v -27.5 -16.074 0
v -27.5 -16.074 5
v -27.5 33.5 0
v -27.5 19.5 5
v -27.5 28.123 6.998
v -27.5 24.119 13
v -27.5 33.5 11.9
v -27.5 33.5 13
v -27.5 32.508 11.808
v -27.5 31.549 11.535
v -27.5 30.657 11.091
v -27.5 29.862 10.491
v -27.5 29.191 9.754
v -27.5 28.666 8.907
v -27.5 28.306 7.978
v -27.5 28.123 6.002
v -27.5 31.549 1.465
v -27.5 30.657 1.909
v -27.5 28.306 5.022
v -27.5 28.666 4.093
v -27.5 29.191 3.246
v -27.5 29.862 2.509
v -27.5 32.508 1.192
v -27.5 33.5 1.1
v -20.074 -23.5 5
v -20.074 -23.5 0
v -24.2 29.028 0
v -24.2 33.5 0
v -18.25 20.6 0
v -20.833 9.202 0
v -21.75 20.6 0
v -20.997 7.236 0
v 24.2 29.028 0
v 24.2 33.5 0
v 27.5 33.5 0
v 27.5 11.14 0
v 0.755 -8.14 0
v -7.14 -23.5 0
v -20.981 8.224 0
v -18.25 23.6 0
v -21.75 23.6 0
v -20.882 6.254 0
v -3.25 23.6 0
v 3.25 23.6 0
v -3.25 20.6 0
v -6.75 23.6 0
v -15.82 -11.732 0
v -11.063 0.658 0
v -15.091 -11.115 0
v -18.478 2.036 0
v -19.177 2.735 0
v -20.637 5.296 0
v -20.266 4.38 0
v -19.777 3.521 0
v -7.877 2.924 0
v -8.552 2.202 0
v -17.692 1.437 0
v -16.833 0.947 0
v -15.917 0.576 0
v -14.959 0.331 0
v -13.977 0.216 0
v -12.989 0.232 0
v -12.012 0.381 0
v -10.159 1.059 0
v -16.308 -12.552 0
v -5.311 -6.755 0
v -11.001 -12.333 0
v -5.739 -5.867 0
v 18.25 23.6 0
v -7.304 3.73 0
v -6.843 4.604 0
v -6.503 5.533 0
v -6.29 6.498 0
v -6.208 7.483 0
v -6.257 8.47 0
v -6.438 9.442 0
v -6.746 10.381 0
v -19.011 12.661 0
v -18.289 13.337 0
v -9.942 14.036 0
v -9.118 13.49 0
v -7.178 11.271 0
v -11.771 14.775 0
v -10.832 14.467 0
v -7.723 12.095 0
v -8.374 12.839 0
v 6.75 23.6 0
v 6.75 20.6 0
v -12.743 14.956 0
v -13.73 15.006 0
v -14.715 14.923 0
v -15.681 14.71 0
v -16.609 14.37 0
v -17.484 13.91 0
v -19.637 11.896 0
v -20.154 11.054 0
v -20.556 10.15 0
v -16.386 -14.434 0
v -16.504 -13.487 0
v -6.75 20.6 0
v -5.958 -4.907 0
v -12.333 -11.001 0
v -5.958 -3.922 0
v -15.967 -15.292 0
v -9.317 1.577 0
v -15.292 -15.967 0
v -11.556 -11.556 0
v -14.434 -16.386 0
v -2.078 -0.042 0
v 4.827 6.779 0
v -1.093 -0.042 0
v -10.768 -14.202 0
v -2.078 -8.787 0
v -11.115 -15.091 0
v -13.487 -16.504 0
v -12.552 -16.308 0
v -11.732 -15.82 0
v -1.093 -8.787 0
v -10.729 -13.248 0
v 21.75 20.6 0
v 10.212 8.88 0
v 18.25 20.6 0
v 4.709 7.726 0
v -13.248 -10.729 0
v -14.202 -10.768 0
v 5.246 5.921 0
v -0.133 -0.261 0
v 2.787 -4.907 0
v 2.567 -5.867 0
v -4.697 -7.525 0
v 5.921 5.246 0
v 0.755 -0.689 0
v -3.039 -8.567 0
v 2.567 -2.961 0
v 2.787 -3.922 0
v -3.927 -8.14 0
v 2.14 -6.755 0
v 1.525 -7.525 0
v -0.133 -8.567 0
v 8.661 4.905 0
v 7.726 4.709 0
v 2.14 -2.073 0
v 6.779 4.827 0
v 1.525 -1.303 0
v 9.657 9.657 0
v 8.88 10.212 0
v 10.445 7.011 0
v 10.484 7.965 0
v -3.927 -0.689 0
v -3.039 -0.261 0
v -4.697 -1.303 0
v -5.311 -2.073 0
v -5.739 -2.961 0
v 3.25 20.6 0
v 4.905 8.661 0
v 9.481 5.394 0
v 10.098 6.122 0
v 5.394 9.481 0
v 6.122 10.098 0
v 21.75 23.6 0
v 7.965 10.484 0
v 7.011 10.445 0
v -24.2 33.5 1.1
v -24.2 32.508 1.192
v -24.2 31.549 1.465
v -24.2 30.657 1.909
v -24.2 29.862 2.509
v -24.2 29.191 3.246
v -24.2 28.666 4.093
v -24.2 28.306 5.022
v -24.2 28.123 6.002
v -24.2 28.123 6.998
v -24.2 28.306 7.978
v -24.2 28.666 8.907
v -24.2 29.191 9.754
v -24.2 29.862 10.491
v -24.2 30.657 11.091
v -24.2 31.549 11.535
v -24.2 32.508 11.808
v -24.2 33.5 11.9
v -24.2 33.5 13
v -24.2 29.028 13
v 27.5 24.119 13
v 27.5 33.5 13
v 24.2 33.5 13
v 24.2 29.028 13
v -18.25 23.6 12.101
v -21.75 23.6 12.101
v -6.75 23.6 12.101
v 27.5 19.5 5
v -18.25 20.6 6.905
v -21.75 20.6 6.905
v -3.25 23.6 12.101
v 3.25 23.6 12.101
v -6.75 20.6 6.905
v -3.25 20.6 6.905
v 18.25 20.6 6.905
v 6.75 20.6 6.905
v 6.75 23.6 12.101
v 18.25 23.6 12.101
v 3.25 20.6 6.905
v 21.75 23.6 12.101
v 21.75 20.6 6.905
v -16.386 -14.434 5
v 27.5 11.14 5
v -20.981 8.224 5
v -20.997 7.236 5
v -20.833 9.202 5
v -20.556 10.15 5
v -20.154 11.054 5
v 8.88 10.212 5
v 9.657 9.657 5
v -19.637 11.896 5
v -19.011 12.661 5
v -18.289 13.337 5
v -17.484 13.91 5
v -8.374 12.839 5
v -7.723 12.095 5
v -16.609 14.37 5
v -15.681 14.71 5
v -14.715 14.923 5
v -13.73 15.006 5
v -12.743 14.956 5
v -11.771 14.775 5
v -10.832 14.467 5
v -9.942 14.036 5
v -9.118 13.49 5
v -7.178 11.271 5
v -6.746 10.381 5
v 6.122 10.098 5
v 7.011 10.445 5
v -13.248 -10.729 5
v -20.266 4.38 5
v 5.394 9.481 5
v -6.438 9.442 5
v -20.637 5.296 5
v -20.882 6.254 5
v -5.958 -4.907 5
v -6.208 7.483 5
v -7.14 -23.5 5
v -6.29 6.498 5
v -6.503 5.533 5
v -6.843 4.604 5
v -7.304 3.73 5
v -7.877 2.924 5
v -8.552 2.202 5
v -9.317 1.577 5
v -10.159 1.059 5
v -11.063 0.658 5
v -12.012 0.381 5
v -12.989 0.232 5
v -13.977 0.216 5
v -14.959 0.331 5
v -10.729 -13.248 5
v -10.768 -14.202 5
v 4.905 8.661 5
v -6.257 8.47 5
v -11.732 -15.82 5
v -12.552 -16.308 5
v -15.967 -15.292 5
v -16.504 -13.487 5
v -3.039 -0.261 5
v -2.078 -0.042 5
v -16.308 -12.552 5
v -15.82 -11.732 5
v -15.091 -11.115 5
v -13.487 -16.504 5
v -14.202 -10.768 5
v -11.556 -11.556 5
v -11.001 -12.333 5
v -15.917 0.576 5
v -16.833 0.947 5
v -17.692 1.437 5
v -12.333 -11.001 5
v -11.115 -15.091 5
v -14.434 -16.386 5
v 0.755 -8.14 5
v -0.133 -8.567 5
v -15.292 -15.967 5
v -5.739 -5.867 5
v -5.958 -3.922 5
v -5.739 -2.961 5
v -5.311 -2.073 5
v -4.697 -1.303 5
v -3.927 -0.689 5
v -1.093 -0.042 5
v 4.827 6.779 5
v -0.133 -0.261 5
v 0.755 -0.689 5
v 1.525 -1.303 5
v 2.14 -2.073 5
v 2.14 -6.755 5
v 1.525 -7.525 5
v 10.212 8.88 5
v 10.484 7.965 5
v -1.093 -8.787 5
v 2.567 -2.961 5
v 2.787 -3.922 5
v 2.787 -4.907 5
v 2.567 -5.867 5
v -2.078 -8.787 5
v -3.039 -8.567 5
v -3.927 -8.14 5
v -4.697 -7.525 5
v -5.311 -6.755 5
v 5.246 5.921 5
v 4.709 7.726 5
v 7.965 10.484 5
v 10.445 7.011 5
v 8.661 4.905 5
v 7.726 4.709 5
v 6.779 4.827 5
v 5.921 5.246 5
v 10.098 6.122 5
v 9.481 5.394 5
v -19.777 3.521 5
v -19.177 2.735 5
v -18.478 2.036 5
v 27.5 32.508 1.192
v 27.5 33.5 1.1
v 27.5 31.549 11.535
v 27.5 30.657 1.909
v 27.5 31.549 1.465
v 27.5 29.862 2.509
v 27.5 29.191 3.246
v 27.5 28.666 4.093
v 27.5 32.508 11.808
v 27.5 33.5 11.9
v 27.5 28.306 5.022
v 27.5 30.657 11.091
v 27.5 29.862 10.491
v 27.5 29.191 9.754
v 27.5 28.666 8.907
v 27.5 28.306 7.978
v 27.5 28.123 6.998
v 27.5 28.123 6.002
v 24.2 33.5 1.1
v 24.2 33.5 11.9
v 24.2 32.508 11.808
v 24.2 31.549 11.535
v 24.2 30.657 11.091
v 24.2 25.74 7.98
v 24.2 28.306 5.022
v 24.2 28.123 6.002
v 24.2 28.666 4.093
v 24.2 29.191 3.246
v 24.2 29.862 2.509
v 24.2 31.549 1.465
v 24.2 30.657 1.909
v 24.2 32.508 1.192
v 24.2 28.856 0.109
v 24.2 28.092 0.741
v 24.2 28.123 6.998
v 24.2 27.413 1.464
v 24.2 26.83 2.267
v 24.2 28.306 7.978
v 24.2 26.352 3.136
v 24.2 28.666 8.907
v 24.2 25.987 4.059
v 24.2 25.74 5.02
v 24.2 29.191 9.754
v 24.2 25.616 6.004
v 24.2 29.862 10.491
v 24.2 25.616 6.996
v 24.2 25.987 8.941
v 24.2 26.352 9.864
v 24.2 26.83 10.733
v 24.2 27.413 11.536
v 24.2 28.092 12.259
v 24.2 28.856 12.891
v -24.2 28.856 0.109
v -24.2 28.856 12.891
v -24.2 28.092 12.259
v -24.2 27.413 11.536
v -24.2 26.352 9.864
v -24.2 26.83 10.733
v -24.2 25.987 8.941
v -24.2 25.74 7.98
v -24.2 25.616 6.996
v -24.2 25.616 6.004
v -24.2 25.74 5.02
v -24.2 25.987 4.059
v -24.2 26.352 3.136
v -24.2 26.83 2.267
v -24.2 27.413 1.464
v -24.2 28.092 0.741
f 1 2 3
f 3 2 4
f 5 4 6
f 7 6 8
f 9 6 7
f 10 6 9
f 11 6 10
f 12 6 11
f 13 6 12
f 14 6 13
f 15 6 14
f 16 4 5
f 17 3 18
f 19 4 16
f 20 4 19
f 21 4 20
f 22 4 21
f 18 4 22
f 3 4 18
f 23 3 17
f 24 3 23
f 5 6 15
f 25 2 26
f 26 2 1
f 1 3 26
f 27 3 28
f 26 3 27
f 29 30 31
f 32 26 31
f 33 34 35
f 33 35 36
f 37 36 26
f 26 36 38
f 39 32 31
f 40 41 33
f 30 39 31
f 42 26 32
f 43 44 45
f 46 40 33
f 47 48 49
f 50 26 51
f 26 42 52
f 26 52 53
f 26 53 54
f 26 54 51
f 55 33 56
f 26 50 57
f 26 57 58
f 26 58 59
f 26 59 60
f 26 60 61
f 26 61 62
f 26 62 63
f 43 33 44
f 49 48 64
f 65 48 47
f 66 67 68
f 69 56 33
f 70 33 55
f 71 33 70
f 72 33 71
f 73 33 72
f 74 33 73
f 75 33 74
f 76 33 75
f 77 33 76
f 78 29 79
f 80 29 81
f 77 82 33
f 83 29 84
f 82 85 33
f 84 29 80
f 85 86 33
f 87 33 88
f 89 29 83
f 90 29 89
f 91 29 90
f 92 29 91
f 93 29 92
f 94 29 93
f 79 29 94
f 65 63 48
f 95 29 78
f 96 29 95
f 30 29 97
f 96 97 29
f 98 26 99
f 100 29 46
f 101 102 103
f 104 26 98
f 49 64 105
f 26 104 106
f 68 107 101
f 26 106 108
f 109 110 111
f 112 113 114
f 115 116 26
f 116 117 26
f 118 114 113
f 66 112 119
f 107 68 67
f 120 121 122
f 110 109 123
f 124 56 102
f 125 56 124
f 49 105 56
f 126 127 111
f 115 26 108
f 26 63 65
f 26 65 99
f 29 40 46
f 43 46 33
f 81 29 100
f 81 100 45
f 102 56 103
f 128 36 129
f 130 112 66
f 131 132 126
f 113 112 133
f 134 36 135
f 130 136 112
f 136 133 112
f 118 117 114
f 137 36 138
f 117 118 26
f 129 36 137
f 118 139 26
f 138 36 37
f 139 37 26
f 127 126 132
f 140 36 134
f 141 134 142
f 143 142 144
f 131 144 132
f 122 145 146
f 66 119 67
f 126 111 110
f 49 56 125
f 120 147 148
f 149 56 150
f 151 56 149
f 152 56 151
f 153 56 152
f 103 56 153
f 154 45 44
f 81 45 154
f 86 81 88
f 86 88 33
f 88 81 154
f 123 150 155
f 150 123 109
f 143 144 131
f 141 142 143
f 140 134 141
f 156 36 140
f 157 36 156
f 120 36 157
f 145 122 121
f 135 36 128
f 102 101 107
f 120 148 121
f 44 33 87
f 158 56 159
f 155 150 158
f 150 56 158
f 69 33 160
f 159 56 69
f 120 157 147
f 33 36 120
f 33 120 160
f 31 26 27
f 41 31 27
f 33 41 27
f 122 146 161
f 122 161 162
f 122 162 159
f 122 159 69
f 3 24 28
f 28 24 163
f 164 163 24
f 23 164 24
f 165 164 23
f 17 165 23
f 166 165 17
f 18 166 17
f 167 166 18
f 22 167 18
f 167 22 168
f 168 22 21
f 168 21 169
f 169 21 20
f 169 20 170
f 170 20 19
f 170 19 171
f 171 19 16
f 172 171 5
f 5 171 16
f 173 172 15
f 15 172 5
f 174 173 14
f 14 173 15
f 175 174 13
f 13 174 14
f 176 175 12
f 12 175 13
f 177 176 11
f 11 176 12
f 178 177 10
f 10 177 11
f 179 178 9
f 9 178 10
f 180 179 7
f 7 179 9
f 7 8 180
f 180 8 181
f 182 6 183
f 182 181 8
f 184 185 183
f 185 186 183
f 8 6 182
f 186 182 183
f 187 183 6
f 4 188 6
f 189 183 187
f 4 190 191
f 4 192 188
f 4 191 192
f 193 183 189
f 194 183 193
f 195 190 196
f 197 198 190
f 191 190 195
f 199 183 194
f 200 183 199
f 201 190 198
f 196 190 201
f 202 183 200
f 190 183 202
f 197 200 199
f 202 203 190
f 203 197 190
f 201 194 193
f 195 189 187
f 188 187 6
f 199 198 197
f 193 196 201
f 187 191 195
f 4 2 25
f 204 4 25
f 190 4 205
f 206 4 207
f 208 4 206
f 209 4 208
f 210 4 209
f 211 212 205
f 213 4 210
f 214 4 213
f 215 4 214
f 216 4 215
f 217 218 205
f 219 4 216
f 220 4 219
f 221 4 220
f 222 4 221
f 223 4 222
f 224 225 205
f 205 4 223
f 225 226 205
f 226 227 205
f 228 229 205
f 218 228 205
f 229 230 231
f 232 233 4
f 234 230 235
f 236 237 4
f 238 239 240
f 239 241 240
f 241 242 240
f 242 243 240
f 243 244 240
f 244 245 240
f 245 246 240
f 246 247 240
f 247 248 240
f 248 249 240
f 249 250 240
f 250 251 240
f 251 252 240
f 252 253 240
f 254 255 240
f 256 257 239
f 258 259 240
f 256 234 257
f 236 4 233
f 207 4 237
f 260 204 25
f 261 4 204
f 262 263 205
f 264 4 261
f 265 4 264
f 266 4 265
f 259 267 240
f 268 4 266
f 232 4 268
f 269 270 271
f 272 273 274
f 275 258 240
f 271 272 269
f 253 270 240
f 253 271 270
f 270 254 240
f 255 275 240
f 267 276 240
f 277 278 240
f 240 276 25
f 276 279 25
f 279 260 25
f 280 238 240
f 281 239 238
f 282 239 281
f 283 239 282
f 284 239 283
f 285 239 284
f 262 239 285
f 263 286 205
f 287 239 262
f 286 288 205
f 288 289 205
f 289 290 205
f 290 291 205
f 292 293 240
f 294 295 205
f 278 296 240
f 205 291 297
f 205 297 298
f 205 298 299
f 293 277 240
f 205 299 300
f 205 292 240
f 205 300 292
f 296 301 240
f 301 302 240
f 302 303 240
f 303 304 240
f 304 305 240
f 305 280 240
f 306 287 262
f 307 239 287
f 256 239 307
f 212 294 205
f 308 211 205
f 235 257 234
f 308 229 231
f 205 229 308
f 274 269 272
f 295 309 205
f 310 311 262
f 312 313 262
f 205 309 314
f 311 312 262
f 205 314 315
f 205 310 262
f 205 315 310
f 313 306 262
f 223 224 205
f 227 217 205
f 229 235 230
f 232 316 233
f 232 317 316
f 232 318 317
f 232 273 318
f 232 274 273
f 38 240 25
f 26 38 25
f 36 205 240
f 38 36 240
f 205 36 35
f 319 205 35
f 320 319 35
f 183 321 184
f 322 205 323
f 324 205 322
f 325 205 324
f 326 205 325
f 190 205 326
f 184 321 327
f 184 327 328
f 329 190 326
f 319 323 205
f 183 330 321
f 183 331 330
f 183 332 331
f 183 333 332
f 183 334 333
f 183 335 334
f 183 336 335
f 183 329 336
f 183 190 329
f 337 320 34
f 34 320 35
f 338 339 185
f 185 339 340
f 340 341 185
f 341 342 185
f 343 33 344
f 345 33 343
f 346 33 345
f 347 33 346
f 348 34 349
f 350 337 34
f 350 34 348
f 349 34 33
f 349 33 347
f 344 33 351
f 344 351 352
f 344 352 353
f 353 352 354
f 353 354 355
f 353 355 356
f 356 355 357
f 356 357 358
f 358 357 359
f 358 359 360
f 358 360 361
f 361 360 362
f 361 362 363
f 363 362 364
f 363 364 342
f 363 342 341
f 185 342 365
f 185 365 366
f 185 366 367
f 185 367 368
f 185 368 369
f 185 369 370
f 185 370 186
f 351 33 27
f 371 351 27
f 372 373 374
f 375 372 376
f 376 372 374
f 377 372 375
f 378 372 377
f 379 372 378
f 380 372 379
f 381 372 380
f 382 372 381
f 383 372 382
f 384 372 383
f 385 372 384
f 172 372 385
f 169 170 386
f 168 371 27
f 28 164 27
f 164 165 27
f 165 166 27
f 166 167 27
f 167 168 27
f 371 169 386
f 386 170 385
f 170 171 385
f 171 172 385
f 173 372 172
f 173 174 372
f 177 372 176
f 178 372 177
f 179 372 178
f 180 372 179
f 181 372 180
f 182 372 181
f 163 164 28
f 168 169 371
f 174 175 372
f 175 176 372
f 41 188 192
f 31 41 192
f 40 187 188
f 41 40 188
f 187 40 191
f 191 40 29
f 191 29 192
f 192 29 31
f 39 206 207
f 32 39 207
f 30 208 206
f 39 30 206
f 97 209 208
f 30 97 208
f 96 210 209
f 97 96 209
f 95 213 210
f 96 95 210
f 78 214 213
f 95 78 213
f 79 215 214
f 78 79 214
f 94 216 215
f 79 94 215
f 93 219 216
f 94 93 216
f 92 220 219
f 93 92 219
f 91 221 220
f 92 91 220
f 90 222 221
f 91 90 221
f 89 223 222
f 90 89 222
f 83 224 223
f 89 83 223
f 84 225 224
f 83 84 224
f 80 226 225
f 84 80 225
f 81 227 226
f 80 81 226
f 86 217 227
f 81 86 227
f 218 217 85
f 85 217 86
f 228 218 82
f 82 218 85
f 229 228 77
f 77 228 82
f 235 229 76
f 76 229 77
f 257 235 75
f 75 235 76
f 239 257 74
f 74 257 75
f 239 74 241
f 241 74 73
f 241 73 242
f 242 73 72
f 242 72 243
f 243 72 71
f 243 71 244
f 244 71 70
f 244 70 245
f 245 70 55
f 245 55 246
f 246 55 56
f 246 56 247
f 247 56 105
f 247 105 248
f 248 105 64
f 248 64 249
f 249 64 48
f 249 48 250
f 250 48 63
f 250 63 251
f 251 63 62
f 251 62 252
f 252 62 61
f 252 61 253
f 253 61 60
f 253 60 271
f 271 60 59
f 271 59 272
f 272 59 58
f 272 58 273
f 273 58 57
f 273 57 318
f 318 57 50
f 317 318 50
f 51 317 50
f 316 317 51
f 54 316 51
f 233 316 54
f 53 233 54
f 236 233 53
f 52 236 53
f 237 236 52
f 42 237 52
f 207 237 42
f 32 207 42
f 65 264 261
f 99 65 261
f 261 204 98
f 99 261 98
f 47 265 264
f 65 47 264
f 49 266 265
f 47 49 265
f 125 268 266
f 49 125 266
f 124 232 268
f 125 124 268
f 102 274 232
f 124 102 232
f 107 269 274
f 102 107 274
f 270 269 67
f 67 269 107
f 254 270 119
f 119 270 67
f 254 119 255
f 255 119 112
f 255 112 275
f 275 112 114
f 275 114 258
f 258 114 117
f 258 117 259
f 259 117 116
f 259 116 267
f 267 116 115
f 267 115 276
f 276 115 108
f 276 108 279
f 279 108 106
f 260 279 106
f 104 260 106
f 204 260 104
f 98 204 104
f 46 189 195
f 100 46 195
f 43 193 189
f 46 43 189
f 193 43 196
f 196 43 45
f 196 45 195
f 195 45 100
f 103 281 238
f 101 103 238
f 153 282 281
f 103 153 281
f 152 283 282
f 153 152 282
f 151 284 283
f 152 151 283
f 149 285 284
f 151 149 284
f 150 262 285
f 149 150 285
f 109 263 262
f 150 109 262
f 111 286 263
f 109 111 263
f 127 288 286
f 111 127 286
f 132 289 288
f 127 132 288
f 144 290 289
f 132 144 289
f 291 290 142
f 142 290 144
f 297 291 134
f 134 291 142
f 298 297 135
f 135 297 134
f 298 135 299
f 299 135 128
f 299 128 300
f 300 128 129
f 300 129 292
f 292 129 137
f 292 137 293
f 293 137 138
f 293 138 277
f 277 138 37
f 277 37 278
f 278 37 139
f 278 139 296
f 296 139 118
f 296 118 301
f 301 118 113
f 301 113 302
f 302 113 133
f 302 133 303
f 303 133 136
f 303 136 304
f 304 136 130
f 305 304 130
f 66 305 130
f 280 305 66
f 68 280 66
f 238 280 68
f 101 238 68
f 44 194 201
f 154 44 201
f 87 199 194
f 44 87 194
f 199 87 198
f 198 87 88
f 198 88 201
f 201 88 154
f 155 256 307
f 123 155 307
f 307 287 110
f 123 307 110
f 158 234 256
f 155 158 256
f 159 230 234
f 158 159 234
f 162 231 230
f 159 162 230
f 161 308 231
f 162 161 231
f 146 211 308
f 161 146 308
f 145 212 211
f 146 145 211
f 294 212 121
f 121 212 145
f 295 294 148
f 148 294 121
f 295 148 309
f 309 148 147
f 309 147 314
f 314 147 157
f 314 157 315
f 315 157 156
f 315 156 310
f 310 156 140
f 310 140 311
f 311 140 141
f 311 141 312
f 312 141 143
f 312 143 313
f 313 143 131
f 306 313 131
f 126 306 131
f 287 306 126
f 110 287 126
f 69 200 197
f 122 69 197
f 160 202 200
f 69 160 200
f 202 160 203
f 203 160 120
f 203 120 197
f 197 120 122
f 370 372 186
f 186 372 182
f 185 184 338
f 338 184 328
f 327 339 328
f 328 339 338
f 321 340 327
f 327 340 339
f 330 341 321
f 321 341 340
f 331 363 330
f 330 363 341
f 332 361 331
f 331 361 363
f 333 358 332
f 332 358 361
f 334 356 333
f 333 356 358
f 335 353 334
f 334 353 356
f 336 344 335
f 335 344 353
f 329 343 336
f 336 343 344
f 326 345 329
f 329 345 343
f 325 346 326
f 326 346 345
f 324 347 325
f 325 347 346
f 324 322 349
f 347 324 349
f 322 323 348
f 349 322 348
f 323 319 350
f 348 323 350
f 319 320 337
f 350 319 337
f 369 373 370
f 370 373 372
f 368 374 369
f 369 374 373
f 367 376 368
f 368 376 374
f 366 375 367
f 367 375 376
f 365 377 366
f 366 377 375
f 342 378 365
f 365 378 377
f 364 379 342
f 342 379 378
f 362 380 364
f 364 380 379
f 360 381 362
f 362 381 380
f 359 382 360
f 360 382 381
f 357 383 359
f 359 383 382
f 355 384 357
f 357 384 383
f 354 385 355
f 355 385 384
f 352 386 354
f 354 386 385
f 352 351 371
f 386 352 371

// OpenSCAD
$fa = 1;
$fs = 1;

t = 0.4;

w = 55;
h = 15 - (2.2 / 2) - t - 0.5;
d = 67;
dx = -3;
dy = 3;
bh = 5;

bd = 3;

module support() {

difference() {
		translate([-w/2, -d/2, 0]) {
			difference() {
				cube([w, d, h]);
				translate([0, 0, bh]) cube([w, d - 14, h - bh]);
				translate([0, d - 14, bh]) rotate(60, [1, 0, 0]) # cube([w, 12, 12]);
				translate([37, -37, 0]) rotate(45, [0, 0, 1]) cube([80, 45, 5]);
				translate([2, -27, 0]) rotate(45, [0, 0, 1]) cube([30, 40, 5]);
				translate([2, -30, 0]) # cube([30, 40, 5]);
			}
		}


		translate([dx,-dy,0]) {
			rotate(45, [0, 0, 1]) {
				translate([0, -2, 0]) cylinder(h, 4 + t, 4 + t);	
				translate([0, 15, 0]) cylinder(h, 7 + t, 7 + t);	
				translate([-15, 0, 0]) cylinder(h, 2.5+t, 2.5+t);		
				translate([15, 0, 0]) cylinder(h, 2.5+t, 2.5+t);
			}
		}

		translate([-3.5/2, d/2 - (7.5+t) - 2 - bd , 0]) {
			translate([-20, 0, 0]) cube([3.5, bd, h]);
			translate([-5, 0, 0]) cube([3.5, bd, h]);
			translate([ 5, 0, 0]) cube([3.5, bd, h]);
			translate([ 20, 0, 0]) cube([3.5, bd, h]);
		}
		translate([0, d/2, h/2]) {
			rotate(90, [0, 1, 0]) {
				cylinder(2*24+t, 7.5+t, 7.5+t, true);
				cylinder(w+0.5, 5+t, 5+t, true);
			}
		}
	}
}

support();
// translate([-6, -6, -2]) rotate(180, [1, 0, 0]) rotate(90, [0, 0, 1]) support();
